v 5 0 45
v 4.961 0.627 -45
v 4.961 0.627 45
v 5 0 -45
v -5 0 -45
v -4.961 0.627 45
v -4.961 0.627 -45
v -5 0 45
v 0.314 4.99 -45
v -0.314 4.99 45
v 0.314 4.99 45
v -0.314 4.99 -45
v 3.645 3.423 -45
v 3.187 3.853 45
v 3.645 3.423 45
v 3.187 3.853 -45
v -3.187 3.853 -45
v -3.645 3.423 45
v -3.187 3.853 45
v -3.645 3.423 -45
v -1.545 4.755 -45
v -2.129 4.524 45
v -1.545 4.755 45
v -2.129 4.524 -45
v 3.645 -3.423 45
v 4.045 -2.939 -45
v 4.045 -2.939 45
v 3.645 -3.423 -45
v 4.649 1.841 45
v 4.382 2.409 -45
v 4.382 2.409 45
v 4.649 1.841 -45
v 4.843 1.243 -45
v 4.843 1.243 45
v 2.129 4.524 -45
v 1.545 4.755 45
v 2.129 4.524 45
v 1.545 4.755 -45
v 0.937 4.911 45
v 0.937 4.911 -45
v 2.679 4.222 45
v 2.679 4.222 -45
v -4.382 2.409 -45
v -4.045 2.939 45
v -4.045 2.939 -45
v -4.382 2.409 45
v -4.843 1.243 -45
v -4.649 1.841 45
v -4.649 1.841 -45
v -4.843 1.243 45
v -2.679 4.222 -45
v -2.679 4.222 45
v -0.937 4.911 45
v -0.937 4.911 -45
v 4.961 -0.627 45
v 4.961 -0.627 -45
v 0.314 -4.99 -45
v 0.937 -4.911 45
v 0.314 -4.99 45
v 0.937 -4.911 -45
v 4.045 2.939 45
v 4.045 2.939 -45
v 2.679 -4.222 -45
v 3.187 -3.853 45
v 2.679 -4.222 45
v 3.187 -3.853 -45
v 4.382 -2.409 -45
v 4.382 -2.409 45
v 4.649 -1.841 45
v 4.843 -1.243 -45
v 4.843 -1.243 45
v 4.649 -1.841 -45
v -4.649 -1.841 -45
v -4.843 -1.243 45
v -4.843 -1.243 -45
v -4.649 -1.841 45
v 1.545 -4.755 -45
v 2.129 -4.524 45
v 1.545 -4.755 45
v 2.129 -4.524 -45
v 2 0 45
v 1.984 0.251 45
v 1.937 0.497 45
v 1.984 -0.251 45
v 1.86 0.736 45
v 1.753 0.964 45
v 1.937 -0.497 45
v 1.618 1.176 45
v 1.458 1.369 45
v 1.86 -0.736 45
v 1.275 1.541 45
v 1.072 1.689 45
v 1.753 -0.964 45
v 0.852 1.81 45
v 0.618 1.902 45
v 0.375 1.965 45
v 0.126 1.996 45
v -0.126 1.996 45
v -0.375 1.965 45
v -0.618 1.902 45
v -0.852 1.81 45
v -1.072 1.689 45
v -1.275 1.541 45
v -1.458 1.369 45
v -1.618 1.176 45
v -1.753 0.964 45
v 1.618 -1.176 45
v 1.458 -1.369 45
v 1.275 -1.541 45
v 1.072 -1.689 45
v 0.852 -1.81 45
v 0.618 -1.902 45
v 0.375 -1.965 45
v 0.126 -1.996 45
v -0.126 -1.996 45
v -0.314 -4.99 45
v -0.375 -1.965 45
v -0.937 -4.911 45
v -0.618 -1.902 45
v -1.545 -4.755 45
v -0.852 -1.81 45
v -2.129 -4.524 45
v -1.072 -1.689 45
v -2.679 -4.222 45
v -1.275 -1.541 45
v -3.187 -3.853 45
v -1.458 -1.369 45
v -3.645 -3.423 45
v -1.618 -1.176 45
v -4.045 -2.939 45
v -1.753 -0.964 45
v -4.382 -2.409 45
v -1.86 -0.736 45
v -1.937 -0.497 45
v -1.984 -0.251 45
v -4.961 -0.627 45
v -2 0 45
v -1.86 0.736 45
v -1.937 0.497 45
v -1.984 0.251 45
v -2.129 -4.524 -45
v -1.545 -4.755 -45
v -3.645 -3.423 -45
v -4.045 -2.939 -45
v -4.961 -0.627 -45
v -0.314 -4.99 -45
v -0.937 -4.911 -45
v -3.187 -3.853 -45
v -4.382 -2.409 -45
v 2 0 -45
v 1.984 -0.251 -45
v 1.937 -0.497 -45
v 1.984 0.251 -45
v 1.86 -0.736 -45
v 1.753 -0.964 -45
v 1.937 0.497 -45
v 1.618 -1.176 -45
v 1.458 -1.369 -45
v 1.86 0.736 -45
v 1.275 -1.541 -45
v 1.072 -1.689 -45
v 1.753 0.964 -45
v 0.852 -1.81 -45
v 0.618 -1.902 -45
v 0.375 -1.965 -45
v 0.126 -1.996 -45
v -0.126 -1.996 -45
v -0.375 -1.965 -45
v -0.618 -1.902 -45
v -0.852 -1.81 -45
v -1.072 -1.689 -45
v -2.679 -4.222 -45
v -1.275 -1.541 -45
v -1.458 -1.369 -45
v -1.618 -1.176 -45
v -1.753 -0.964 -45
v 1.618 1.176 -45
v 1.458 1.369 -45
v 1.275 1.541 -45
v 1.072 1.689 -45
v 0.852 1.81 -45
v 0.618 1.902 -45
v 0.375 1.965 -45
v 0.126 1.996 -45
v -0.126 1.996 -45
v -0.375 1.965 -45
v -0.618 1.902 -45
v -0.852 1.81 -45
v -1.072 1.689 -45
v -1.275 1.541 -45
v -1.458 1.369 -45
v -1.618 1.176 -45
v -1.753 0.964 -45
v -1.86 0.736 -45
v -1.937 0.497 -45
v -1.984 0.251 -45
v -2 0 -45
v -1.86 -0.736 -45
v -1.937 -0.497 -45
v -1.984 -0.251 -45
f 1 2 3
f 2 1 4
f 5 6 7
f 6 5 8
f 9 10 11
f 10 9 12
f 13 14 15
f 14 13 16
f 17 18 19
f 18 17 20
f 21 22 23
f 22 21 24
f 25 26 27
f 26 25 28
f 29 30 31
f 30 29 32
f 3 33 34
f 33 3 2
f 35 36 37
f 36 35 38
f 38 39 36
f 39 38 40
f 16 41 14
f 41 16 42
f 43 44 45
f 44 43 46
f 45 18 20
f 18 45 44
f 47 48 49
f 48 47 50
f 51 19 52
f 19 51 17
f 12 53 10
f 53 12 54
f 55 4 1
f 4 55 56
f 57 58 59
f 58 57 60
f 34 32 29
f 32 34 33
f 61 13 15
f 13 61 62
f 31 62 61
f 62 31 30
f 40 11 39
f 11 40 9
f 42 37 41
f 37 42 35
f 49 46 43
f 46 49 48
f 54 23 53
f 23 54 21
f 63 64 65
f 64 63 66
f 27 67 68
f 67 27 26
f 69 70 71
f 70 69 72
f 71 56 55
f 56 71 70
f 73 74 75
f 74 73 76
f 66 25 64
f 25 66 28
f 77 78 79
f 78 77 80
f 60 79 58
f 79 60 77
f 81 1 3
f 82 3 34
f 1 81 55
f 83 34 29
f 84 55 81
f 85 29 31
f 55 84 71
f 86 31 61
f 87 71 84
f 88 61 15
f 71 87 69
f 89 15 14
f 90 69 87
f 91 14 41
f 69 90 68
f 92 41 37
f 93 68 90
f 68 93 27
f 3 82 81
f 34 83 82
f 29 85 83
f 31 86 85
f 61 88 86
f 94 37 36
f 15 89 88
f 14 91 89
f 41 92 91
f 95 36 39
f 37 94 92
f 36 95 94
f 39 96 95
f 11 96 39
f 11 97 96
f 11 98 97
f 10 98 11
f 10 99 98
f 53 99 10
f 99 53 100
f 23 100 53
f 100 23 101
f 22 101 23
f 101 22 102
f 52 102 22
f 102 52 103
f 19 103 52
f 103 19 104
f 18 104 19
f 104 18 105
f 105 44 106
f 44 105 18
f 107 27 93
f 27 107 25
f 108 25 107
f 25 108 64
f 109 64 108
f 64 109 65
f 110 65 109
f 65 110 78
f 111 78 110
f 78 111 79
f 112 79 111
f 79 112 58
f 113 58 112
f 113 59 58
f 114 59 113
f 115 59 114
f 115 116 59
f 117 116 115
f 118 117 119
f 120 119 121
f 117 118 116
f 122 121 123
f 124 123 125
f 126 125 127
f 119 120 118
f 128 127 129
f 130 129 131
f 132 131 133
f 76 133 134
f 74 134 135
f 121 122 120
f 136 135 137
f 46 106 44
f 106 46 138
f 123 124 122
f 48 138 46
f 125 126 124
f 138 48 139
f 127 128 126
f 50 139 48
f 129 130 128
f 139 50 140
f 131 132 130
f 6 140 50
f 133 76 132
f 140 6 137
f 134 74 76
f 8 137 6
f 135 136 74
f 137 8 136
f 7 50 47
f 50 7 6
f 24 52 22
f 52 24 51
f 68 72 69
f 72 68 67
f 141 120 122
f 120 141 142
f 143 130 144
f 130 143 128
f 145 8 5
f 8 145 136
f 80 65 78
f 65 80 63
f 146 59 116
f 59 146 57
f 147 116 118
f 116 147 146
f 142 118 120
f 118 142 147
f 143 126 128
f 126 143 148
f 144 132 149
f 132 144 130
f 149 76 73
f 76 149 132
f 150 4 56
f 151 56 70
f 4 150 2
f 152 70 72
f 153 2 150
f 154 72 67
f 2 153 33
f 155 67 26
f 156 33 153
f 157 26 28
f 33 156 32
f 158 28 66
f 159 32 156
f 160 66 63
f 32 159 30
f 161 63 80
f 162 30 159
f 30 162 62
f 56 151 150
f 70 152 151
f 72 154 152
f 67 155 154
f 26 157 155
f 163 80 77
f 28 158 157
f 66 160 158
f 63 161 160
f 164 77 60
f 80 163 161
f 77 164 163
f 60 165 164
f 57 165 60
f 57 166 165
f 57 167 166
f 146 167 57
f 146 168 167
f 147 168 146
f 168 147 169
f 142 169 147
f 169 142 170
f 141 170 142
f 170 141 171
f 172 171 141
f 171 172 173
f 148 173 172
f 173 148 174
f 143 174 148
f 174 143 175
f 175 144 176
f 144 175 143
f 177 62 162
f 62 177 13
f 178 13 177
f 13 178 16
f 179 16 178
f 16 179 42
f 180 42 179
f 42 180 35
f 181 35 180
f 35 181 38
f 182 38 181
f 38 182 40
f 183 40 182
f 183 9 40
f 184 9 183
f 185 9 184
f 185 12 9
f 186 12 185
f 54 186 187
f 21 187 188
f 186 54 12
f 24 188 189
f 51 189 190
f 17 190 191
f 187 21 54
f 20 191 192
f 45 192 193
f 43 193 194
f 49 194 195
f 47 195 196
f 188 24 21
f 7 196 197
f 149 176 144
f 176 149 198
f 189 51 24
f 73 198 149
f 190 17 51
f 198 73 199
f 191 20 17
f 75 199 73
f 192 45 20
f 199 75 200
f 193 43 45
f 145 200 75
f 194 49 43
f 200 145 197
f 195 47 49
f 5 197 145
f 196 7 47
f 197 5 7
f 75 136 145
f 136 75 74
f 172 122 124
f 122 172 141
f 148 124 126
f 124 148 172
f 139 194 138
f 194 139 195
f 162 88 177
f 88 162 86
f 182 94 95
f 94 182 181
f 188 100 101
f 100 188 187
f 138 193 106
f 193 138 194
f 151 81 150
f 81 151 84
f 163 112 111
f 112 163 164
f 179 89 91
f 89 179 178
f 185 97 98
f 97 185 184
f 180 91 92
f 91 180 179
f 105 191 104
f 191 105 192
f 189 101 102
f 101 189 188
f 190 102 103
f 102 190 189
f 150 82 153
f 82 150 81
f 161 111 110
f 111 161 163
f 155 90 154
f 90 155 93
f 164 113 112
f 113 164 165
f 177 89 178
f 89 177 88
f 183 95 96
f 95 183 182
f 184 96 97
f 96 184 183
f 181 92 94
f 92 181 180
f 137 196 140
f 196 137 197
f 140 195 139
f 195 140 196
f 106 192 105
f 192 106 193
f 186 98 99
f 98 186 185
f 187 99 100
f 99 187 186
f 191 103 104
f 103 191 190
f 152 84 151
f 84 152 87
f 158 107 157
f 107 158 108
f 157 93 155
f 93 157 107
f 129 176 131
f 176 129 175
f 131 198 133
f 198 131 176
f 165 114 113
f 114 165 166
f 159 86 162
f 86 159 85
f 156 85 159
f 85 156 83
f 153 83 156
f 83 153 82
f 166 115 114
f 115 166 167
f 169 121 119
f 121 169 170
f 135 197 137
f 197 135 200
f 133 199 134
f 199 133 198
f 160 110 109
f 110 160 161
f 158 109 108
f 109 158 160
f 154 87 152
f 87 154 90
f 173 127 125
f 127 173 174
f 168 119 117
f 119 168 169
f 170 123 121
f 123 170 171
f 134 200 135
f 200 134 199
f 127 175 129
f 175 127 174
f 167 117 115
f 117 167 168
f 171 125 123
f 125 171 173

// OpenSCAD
$fn = 50;


difference() {
	union() {
		translate(v = [0, 0, -45.0000000000]) {
			cylinder(h = 90, r = 5.0000000000);
		}
	}
	union() {
		translate(v = [0, 0, -100.0000000000]) {
			cylinder(h = 200, r = 2.0000000000);
		}
	}
}
